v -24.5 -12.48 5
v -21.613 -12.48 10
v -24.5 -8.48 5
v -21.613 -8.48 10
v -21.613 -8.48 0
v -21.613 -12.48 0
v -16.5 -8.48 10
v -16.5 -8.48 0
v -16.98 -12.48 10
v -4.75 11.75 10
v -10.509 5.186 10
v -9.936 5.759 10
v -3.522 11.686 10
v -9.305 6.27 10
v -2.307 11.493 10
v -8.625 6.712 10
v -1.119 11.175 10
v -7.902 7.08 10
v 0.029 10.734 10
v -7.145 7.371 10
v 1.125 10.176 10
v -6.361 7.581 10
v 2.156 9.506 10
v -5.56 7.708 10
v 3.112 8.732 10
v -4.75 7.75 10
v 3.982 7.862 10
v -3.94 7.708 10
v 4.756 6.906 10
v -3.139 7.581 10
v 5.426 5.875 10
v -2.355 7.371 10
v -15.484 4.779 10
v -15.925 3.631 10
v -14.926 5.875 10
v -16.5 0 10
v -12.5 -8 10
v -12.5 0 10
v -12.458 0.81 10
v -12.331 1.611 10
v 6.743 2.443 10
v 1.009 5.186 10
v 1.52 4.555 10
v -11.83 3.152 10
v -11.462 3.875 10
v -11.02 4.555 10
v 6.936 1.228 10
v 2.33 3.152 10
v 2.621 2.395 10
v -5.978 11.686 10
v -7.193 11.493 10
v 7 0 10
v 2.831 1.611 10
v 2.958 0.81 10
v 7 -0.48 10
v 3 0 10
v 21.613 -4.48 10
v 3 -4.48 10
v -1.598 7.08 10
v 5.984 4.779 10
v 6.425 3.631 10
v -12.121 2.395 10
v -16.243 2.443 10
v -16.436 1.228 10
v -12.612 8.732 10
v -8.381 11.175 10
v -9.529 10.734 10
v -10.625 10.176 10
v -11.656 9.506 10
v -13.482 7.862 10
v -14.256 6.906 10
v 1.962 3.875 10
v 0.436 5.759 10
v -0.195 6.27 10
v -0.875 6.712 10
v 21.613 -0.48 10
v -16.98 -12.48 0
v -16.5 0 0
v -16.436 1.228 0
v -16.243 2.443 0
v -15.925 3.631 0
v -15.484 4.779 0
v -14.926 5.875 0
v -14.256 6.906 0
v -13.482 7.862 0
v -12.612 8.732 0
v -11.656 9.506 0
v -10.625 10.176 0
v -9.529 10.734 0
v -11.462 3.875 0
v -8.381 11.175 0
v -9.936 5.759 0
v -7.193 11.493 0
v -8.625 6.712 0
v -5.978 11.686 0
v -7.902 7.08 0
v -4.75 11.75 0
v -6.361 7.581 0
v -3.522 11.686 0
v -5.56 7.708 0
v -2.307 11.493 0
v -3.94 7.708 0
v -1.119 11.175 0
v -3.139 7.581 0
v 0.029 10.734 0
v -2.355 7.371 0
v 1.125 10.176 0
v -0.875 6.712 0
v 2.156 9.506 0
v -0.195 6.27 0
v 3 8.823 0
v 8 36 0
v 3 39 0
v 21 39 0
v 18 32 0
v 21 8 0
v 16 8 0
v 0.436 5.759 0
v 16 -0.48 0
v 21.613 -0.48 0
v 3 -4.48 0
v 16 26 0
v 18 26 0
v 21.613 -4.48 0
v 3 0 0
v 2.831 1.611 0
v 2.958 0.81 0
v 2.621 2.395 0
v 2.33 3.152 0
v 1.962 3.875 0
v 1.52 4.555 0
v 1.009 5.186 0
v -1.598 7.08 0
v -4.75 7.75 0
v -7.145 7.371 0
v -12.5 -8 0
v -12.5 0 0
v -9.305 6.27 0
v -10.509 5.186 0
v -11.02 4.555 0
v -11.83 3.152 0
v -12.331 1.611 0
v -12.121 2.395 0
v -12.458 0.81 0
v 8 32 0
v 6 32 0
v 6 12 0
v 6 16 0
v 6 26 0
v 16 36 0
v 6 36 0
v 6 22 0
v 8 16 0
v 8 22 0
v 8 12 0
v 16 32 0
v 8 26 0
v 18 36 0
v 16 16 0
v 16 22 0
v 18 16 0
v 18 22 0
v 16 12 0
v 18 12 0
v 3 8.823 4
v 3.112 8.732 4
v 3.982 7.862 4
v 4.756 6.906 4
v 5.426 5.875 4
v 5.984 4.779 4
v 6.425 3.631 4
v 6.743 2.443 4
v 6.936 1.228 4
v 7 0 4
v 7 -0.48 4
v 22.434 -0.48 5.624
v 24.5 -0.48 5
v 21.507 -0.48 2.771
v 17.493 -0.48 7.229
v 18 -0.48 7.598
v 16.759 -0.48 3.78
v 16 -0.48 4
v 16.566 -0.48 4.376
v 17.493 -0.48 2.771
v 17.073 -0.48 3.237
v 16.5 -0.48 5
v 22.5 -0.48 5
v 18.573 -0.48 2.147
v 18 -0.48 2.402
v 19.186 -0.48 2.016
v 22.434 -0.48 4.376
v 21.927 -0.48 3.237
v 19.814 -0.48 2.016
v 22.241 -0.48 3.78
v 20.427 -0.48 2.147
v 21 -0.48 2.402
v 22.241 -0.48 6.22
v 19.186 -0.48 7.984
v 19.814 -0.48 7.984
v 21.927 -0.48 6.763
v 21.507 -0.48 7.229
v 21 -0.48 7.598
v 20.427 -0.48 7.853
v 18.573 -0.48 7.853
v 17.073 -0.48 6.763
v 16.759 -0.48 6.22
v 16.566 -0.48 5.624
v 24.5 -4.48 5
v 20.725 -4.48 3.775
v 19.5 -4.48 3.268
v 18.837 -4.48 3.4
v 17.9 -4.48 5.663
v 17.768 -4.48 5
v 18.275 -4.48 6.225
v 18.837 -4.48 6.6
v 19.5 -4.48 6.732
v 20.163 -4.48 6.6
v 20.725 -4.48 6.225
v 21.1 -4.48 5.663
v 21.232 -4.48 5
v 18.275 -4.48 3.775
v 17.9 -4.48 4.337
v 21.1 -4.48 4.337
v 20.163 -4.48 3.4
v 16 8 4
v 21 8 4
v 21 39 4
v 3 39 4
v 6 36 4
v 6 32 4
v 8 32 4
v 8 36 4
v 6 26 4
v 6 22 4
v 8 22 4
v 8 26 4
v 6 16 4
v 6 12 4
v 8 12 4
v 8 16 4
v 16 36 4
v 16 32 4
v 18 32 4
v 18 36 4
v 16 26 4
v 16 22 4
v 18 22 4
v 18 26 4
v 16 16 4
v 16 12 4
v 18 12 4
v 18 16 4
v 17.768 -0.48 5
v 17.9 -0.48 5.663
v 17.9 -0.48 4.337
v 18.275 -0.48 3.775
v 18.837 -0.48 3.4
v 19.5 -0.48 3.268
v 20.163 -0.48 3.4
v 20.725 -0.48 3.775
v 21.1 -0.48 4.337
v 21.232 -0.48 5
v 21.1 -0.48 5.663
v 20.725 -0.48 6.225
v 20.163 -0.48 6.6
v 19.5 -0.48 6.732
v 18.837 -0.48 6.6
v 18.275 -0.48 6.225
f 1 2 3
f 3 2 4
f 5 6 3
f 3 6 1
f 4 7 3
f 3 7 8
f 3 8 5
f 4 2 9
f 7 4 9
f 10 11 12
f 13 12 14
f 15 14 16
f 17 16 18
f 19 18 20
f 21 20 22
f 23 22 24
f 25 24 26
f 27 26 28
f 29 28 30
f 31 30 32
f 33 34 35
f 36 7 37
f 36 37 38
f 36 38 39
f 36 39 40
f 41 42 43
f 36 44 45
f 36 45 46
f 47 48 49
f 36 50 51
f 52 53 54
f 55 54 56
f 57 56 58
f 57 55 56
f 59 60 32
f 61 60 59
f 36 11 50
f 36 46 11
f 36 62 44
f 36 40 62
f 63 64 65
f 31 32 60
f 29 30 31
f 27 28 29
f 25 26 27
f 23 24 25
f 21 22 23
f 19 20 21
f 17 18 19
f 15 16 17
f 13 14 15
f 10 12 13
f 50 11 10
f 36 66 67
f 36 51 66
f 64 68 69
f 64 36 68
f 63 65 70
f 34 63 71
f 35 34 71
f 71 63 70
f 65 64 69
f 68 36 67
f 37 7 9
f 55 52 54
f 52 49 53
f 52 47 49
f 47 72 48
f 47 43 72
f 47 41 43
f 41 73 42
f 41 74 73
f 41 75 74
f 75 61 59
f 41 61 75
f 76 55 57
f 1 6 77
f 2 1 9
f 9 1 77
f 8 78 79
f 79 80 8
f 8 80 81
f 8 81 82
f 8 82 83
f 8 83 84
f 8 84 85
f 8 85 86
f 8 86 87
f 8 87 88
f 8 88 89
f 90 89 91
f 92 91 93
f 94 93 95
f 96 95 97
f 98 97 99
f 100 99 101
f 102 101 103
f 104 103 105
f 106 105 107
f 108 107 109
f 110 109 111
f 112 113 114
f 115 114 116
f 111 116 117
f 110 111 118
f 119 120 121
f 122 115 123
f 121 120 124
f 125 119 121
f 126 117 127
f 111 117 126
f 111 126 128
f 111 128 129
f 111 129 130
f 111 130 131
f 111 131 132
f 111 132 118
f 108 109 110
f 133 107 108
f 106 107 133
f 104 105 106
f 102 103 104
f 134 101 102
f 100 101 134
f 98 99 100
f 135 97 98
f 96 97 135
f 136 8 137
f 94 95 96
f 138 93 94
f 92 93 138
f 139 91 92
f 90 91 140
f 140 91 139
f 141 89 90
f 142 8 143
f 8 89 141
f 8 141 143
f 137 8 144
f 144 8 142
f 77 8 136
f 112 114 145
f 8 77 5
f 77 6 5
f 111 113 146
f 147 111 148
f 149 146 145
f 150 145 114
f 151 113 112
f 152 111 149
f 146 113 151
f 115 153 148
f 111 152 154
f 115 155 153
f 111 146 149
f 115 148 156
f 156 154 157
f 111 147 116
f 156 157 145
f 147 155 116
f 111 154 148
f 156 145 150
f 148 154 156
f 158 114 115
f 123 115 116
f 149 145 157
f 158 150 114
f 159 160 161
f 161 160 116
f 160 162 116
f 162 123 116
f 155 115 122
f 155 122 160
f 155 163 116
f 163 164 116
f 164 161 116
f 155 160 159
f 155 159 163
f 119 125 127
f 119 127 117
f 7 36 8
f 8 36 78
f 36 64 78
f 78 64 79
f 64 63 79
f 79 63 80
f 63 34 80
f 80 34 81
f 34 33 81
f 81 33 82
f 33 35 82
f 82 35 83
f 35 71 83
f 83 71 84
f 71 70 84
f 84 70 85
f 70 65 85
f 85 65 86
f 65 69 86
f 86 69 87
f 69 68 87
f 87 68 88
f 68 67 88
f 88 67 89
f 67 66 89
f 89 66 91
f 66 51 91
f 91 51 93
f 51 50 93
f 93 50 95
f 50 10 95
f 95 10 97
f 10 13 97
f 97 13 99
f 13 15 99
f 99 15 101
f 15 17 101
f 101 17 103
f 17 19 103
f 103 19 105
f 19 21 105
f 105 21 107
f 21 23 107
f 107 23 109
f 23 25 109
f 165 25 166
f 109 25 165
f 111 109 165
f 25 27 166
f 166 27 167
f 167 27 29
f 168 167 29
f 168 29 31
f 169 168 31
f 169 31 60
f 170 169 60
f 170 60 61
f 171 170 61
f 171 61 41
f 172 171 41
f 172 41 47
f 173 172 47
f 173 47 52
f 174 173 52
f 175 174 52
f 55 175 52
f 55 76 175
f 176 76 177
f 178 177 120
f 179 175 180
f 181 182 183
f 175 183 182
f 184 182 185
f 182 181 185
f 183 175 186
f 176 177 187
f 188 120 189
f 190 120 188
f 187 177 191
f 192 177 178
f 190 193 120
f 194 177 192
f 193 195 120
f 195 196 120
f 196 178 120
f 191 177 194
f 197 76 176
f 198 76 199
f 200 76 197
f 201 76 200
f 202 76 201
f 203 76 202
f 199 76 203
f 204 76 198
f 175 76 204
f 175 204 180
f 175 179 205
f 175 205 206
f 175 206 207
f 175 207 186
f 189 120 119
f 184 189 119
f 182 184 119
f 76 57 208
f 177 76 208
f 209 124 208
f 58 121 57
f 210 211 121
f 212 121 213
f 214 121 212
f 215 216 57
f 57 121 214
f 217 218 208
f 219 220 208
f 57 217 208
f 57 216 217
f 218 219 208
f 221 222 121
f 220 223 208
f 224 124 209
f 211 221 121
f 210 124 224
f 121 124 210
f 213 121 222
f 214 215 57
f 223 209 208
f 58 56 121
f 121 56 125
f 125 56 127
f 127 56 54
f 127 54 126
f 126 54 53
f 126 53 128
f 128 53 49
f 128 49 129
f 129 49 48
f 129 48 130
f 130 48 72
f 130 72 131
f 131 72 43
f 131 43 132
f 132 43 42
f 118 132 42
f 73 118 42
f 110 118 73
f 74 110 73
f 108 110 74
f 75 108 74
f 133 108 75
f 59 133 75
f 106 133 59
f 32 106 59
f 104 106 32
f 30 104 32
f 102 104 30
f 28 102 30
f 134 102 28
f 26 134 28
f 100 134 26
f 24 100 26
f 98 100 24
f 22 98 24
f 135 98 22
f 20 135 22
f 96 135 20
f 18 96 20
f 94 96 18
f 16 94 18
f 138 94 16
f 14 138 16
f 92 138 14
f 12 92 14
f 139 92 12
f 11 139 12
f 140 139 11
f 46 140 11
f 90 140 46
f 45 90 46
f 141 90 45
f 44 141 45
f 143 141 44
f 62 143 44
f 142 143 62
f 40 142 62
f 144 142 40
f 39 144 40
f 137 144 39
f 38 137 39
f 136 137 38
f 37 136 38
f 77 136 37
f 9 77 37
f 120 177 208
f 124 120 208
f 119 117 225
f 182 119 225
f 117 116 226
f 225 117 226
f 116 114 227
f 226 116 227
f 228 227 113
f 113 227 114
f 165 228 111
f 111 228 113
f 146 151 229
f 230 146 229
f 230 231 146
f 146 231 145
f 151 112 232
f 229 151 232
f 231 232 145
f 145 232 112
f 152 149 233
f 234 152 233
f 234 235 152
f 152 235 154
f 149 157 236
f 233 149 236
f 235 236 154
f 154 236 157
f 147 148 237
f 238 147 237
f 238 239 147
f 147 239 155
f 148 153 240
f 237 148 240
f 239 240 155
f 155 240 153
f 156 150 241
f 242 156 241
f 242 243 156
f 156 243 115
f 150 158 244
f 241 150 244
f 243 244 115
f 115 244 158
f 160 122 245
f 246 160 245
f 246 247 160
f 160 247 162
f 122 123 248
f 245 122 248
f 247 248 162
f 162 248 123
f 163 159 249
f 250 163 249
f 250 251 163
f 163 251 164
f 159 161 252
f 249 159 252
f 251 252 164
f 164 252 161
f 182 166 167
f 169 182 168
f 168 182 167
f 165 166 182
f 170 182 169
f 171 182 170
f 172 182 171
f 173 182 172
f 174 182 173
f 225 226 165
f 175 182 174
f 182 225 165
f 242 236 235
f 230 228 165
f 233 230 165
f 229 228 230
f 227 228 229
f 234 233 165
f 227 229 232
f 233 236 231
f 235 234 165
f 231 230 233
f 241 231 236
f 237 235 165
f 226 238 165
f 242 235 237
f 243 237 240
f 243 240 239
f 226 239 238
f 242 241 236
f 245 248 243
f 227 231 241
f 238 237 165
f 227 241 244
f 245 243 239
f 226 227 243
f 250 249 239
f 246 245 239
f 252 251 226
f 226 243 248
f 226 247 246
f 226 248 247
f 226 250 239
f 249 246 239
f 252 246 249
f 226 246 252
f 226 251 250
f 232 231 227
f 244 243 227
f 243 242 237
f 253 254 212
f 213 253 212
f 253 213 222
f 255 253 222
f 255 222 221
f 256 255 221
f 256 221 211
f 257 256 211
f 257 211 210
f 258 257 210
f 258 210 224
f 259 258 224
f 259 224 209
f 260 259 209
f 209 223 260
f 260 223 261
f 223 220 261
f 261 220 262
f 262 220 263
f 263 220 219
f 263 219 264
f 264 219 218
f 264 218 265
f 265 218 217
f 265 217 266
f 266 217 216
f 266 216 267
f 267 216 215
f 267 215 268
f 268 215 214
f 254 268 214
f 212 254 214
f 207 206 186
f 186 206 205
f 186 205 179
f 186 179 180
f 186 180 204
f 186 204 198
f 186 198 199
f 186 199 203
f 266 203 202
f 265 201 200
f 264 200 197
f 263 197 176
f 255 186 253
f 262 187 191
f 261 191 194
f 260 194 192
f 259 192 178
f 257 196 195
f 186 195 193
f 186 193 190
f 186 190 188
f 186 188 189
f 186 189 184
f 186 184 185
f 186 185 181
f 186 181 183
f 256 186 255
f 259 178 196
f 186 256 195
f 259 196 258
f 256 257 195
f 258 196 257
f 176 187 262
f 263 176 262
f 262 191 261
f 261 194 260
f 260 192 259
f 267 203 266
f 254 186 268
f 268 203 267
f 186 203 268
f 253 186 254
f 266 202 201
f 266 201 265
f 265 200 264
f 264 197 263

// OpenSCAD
include <wallace2.scad>;
$fn=60;
mirror([0,1,0]) rotate ([0,0,0]) translate([0,0,0]) y_bearing_retainer2();

module y_bearing_retainer2(){

// mounting plate for stopswitch
plate_width=4;
mirror([0,0,1]){

difference(){
	union(){
  translate([3,-40+1,-plate_width]) cube([18,40,plate_width]);
  //translate([5+1,-20+8,-plate_width+2-4]) cube([2,4,plate_width+2]);
  //translate([10+5+1,-20+8,-plate_width+2-4]) cube([2,4,plate_width+2]);

}
 	for ( i = [0 : 2] )
	{
		// stopswitch holes
  		translate([5+1,-20+1+3-i*10,-plate_width-1]) cube([2,4,plate_width+2]);
  		translate([10+5+1,-20+1+3-i*10,-plate_width-1]) cube([2,4,plate_width+2]);
	}

  // larger hole down
  translate([10+5+1,-8,-plate_width-1]) cube([8,13,plate_width+2]);

}
}
// retainer itself

intersection() {
	difference() {
		linear_extrude(height = 10, convexity = 5) difference() {
			union() {
				intersection() {
					translate([-yz_motor_distance / 2 + bearing_size / 2, 0, 0]) circle(bearing_size / 2 + 4);
					translate([-yz_motor_distance / 2 + bearing_size / 2 - bearing_size / 2 - 4, -bearing_size, 0]) square([bearing_size + 8, bearing_size]);
				}
				translate([-yz_motor_distance / 2 + bearing_size / 2 - bearing_size / 2 - 4, 0, 0]) #square([bearing_size + 8, bearing_size * sqrt(2) / 4 - 1]);
				translate([10, bearing_size * sqrt(2) / 4 - 3, 0]) square([yz_motor_distance + motor_casing - motor_screw_spacing + 10, 4], center = true);
				// hook
				translate([-25, bearing_size * sqrt(2) / 4 - 3+8, 0]) square([yz_motor_distance + motor_casing - motor_screw_spacing + 10, 4], center = true);
				// hook to retainer
				translate([-11.5, bearing_size * sqrt(2) / 4 - 3+4, 0]) #square([10, 4], center = true);
			}
			translate([-yz_motor_distance / 2 + bearing_size / 2, 0, 0]) circle(bearing_size / 2);
			translate([-yz_motor_distance / 2 + bearing_size / 2 - bearing_size / 2, 0, 0]) square(bearing_size);
			translate([-yz_motor_distance / 2 + bearing_size / 2 - bearing_size / 2+4, 4, 0]) rotate([0,0,45]) #square(bearing_size);
		}
		//screw holes
		for(side = [1]) translate([side * (yz_motor_distance + motor_casing - motor_screw_spacing) / 2, 0, 5]) rotate(90) rotate([90, 0, 90]) {
			cylinder(r = m3_size * da6, h = bearing_size, center = true, $fn = 16);
			translate([0, 0, bearing_size * sqrt(2) / 4 - 5]) rotate([180, 0, 0]) cylinder(r = m3_size, h = bearing_size, $fn = 30);
		}
	}
	translate([0, 0, 5]) rotate(90) rotate([90, 0, 90]) cylinder(r = (yz_motor_distance + motor_casing - motor_screw_spacing + 10) / 2, h = bearing_size + 10, center = true, $fn = 6);
}
}
